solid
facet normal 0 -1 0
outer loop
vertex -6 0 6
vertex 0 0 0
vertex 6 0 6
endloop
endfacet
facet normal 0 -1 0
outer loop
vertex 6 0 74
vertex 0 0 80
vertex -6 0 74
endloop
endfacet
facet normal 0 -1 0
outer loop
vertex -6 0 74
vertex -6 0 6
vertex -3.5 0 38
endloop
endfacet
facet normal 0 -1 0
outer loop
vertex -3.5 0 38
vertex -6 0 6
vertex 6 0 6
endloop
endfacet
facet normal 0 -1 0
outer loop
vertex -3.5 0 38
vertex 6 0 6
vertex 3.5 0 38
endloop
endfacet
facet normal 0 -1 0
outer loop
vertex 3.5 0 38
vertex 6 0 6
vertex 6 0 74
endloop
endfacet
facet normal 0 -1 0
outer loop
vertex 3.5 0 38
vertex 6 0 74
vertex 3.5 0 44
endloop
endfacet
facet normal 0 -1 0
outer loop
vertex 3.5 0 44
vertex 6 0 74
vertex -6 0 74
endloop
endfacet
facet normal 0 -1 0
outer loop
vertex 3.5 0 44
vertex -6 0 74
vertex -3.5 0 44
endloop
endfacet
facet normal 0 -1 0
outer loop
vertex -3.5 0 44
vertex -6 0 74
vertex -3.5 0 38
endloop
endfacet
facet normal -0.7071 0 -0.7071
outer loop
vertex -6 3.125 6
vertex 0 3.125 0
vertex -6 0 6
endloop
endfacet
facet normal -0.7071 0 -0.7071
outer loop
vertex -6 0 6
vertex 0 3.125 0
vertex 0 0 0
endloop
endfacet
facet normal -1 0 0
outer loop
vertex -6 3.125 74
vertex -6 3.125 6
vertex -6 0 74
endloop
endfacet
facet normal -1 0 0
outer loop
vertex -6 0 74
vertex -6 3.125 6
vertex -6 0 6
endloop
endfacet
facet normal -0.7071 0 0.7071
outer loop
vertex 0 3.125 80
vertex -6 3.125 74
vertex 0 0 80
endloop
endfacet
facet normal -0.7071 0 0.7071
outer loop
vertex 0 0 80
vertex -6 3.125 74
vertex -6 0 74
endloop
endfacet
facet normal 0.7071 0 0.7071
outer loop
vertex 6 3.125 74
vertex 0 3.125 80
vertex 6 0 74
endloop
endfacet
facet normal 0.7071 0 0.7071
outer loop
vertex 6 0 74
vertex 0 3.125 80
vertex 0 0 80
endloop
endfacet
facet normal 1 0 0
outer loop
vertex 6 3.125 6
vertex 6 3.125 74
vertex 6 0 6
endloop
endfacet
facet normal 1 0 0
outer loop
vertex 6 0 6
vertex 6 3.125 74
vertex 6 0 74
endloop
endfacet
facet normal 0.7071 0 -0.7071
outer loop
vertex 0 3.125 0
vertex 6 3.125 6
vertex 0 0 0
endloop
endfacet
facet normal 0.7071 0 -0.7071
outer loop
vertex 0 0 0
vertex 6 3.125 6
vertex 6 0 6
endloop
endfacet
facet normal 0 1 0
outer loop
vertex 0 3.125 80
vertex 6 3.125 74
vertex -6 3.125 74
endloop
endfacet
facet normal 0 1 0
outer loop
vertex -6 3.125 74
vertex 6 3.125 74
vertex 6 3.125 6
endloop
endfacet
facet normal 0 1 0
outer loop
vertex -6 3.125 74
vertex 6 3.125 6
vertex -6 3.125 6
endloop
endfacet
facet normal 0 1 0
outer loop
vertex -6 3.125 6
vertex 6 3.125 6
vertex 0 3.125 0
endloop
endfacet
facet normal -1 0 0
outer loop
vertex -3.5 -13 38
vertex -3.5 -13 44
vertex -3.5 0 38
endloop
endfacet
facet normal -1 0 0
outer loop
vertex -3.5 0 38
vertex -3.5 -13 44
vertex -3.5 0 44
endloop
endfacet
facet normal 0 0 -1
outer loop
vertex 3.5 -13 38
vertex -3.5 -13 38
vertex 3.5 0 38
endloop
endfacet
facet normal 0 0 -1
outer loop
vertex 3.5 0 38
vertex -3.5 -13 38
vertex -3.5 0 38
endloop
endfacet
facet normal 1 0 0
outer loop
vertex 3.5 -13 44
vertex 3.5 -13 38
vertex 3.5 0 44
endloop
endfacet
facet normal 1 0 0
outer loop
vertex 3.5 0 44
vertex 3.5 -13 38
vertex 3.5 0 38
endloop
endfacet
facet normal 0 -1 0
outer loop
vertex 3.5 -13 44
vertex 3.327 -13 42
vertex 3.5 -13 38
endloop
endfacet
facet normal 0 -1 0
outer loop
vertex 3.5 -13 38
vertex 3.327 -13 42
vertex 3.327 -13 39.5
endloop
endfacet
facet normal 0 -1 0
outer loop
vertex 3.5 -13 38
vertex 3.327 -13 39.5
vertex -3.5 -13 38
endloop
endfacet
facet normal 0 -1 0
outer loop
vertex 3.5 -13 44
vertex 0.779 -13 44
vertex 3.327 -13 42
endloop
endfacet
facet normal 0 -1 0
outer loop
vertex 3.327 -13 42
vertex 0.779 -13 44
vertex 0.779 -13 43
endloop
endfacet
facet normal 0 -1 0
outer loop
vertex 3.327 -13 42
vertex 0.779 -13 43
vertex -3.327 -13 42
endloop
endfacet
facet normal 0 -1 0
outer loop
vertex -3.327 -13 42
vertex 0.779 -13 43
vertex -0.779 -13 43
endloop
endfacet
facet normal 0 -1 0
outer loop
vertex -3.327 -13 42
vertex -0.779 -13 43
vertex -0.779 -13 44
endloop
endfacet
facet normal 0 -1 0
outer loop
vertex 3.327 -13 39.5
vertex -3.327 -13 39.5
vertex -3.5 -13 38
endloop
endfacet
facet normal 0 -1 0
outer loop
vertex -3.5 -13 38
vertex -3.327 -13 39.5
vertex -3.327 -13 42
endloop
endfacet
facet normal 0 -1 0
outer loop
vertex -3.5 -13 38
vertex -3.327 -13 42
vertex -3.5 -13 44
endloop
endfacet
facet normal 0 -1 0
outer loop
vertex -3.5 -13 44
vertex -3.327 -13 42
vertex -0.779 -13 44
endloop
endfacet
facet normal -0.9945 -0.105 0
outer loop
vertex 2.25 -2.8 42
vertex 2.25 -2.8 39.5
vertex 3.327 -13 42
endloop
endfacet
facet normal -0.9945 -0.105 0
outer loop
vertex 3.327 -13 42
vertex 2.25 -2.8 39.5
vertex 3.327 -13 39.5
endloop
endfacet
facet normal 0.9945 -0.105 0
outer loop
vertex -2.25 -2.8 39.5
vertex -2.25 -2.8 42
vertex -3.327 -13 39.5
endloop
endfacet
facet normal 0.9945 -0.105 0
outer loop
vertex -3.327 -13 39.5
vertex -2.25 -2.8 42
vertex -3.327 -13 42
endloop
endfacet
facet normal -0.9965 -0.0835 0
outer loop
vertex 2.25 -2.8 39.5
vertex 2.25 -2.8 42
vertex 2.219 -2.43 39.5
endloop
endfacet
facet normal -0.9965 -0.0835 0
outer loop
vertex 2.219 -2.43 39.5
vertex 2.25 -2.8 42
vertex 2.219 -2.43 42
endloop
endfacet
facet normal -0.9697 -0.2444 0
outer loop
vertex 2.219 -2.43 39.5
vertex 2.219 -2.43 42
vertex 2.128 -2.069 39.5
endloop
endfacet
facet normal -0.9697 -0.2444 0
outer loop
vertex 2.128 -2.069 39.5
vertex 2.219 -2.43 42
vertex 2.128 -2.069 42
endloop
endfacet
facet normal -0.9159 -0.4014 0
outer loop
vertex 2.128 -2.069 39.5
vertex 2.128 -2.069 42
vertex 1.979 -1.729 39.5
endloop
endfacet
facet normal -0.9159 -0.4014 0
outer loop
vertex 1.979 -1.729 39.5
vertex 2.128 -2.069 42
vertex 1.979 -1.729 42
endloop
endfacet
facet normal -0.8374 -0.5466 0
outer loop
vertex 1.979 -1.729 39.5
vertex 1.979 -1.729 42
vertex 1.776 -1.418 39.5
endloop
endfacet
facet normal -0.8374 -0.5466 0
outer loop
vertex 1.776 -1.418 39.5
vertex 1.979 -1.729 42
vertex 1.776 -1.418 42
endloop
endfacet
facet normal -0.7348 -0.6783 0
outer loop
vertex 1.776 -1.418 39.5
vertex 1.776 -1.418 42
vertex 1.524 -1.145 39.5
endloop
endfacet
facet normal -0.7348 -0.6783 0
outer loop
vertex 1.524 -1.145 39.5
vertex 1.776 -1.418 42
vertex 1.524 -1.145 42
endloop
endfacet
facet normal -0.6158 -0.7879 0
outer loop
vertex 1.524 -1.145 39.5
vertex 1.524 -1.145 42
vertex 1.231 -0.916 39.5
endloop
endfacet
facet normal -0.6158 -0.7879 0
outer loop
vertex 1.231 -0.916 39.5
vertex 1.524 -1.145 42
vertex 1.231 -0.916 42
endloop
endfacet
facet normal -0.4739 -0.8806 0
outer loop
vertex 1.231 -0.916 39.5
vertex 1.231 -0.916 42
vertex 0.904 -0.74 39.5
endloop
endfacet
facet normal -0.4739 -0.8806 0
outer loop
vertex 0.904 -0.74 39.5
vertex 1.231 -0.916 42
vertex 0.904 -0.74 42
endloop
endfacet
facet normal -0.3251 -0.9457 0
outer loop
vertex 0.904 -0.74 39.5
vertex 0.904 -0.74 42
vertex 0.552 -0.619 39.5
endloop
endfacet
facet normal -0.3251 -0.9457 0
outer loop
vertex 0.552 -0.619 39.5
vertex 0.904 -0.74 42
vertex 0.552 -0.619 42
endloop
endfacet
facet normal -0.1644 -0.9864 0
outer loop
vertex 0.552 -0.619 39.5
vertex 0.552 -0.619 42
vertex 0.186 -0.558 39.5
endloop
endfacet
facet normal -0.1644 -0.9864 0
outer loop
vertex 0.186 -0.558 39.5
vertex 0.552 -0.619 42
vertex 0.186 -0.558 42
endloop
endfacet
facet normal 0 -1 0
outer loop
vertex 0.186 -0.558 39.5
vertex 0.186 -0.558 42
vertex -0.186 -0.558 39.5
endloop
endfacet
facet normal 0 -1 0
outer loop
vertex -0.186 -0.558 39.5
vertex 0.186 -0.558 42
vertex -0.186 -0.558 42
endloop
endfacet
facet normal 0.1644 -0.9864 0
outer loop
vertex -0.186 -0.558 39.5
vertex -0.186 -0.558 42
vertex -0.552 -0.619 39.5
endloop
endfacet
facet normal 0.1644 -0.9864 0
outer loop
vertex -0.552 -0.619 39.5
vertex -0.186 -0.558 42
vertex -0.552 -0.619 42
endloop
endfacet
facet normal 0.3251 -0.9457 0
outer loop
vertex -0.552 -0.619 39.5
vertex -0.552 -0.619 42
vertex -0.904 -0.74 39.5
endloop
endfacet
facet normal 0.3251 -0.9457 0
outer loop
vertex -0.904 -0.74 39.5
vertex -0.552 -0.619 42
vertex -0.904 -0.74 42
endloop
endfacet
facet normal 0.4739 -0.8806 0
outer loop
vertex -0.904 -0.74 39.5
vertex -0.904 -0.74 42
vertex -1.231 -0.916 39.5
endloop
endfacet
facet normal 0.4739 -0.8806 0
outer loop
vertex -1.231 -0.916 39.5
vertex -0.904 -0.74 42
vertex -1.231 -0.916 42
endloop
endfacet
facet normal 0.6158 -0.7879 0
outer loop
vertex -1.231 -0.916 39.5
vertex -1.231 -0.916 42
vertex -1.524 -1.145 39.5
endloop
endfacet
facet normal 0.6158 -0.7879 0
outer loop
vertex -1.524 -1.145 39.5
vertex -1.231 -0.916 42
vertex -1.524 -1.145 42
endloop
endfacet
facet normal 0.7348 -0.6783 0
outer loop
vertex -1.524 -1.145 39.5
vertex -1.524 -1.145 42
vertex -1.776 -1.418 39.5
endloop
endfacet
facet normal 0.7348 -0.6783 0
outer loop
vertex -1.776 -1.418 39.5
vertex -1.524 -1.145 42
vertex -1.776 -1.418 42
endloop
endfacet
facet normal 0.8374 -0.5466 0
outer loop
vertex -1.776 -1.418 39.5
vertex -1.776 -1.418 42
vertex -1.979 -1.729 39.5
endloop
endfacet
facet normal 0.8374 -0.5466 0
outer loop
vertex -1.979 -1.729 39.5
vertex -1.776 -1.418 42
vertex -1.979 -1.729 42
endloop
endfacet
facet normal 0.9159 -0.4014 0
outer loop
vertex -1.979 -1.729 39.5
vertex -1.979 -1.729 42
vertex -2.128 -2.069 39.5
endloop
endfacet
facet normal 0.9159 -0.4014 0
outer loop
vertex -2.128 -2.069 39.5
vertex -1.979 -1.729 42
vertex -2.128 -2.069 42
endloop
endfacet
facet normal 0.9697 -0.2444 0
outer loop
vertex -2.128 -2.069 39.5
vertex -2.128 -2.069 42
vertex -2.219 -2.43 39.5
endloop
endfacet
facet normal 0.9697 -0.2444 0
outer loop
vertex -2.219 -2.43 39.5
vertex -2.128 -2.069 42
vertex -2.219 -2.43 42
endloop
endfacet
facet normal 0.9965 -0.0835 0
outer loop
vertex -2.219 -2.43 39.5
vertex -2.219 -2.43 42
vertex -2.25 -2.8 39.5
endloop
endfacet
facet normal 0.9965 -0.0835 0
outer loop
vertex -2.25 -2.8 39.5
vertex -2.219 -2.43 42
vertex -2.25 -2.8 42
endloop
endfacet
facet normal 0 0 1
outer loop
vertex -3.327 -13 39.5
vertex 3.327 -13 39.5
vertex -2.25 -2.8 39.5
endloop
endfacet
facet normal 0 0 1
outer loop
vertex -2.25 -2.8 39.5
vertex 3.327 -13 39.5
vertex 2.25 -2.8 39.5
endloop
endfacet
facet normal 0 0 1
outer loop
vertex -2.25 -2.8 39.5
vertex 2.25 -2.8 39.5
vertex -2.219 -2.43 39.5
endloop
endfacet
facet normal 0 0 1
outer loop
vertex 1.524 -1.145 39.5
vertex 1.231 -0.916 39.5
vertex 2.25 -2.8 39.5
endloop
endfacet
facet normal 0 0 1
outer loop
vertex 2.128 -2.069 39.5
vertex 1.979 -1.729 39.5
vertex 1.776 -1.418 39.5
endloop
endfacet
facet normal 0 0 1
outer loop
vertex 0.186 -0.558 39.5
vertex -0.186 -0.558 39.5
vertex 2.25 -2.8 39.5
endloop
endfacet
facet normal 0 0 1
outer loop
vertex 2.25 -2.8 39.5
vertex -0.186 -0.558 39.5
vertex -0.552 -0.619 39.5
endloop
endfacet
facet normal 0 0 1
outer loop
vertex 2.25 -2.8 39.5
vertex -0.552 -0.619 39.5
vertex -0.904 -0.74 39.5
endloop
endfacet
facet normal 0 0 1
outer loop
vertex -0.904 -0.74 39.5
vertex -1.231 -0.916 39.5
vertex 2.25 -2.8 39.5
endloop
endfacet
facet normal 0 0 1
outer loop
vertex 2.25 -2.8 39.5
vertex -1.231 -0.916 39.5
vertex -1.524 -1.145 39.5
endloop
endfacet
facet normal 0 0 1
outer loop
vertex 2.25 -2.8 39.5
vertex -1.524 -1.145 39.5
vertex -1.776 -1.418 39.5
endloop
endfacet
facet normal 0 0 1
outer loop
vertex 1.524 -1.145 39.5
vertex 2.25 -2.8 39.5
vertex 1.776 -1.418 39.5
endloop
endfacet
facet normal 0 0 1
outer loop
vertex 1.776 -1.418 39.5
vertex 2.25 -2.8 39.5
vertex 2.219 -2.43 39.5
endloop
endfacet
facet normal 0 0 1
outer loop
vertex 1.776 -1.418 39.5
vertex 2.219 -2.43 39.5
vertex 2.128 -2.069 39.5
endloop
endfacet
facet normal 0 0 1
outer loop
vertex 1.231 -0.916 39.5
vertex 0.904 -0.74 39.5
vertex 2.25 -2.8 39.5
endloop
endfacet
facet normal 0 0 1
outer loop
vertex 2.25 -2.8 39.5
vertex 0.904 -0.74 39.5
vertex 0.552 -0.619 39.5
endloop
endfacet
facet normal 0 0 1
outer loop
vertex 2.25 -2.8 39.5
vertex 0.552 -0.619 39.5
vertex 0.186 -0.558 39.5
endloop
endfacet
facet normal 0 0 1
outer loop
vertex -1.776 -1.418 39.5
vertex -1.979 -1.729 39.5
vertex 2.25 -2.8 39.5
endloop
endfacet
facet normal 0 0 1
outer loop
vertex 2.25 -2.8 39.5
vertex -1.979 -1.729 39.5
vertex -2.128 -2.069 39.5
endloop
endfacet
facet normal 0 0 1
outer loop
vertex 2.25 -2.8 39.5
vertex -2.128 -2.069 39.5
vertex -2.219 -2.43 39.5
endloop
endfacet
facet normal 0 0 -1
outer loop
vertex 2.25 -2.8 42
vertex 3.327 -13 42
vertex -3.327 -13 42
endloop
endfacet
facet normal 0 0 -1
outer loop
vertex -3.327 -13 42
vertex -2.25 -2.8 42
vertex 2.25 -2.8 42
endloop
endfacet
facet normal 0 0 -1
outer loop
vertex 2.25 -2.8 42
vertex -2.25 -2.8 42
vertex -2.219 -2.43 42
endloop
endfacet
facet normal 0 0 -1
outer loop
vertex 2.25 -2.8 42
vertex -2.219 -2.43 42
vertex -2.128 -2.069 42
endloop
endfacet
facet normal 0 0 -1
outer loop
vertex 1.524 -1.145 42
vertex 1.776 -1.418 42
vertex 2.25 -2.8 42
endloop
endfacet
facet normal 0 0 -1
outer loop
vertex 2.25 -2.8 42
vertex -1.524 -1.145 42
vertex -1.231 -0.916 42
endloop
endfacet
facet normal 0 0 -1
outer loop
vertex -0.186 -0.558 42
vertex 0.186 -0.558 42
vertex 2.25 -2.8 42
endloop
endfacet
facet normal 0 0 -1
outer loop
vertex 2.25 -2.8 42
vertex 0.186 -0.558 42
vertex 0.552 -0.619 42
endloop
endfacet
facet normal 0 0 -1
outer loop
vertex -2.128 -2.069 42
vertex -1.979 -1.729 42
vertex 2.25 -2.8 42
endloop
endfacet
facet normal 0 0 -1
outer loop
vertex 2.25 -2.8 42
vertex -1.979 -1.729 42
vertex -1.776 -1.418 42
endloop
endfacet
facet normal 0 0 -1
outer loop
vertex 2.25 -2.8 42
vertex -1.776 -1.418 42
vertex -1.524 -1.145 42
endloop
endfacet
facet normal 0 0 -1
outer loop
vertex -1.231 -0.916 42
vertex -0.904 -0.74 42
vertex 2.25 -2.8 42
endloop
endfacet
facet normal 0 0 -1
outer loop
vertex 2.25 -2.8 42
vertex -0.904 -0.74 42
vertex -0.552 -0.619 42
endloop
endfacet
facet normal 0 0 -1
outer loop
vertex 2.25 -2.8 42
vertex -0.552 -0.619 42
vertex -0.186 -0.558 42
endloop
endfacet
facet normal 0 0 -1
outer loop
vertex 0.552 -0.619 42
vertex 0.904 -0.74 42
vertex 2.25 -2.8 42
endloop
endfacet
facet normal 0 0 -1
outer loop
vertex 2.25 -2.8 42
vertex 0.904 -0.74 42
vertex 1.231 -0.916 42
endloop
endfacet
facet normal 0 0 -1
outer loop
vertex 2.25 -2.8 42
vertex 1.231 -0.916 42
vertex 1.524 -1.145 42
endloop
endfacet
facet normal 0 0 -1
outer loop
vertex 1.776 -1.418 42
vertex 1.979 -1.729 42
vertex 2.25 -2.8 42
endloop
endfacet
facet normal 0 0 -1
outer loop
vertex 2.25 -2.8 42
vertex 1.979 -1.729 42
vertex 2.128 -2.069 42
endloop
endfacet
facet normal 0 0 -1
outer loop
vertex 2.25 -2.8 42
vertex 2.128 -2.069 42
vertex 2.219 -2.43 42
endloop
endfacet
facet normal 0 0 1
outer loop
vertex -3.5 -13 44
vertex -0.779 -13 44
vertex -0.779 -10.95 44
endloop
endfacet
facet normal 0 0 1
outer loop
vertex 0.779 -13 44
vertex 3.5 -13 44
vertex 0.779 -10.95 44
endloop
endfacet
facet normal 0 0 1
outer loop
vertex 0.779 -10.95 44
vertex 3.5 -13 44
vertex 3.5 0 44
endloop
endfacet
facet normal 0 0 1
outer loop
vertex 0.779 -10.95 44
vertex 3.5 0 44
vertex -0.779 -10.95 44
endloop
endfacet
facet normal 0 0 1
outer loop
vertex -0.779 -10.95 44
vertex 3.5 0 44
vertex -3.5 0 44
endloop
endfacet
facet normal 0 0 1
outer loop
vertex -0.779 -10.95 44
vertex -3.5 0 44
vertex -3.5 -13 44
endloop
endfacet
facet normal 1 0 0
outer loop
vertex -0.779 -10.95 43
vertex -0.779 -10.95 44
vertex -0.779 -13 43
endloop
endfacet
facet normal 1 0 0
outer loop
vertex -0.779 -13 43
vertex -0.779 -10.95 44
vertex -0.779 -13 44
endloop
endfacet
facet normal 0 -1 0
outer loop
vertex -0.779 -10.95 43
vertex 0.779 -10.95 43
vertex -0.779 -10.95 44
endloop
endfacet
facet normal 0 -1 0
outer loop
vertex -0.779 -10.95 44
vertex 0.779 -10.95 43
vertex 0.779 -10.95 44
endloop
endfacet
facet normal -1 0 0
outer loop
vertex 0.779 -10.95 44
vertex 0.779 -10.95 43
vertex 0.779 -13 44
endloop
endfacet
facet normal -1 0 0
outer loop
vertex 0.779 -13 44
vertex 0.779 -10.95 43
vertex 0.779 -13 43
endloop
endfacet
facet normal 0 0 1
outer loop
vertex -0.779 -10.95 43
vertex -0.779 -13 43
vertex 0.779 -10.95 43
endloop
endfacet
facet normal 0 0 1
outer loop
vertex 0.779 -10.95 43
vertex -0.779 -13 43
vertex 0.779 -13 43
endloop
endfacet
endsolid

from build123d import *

# Parameters (mm, degrees)
BOSS_EXTRUDE1_DEPTH = 3.125
SKETCH2_W           = 7
SKETCH2_H           = 4
BOSS_EXTRUDE2_DEPTH = 13
CUT_EXTRUDE1_DEPTH  = 2.5
SKETCH4_W           = 7
SKETCH4_H           = 13
BOSS_EXTRUDE3_DEPTH = 2
SKETCH5_W           = 1.55719089
SKETCH5_H           = 4.099138032
CUT_EXTRUDE2_DEPTH  = 1


with BuildPart() as part:
    # Sketch1 → Boss-Extrude1 (new body)
    with BuildSketch(Plane(origin=(0, 0, 0), x_dir=(1, 0, 0), z_dir=(0, 1, 0))):
        Polygon((0, 0), (6, -6), (6, -74), (0, -80), (-6, -74), (-6, -6), align=None)
    extrude(amount=BOSS_EXTRUDE1_DEPTH)

    # Sketch2 → Boss-Extrude2 (add)
    with BuildSketch(Plane.XZ):
        with Locations((0, 40)):
            Rectangle(SKETCH2_W, SKETCH2_H)
    extrude(amount=BOSS_EXTRUDE2_DEPTH)

    # Sketch3 → Cut-Extrude1 (cut)
    with BuildSketch(Plane.XY.offset(42)):
        with BuildLine():
            Line((3.5, -14.64), (-3.5, -14.64))
            Line((-3.5, -14.64), (-2.25, -2.8))
            ThreePointArc((-2.25, -2.8), (0, -0.55), (2.25, -2.8))
            Line((2.25, -2.8), (3.5, -14.64))
        make_face()
    extrude(amount=-CUT_EXTRUDE1_DEPTH, mode=Mode.SUBTRACT)

    # Sketch4 → Boss-Extrude3 (add)
    with BuildSketch(Plane.XY.offset(42)):
        with Locations((0, -6.5)):
            Rectangle(SKETCH4_W, SKETCH4_H)
    extrude(amount=BOSS_EXTRUDE3_DEPTH)

    # Sketch5 → Cut-Extrude2 (cut)
    with BuildSketch(Plane.XY.offset(44)):
        with Locations((0, -13)):
            Rectangle(SKETCH5_W, SKETCH5_H)
    extrude(amount=-CUT_EXTRUDE2_DEPTH, mode=Mode.SUBTRACT)


solid = part.part
